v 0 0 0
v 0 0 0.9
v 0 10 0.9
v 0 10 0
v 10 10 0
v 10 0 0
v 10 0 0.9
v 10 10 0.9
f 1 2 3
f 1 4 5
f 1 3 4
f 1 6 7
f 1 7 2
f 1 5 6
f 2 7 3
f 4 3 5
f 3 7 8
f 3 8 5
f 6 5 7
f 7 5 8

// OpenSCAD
/* Warning, this is a very basic generator with a lot of approximation 
input data : [VQFN, 8DX, 10x10x0.9mm, 68, , A, C04-00323A]
generated by com.zoubworld.electronics.cad.model3d.Basic
Date : Sun Feb 15 10:50:48 CET 2026
*/

//body
color("black")
translate([0,0,0])
cube([10.0,10.0,0.9], center=false);
